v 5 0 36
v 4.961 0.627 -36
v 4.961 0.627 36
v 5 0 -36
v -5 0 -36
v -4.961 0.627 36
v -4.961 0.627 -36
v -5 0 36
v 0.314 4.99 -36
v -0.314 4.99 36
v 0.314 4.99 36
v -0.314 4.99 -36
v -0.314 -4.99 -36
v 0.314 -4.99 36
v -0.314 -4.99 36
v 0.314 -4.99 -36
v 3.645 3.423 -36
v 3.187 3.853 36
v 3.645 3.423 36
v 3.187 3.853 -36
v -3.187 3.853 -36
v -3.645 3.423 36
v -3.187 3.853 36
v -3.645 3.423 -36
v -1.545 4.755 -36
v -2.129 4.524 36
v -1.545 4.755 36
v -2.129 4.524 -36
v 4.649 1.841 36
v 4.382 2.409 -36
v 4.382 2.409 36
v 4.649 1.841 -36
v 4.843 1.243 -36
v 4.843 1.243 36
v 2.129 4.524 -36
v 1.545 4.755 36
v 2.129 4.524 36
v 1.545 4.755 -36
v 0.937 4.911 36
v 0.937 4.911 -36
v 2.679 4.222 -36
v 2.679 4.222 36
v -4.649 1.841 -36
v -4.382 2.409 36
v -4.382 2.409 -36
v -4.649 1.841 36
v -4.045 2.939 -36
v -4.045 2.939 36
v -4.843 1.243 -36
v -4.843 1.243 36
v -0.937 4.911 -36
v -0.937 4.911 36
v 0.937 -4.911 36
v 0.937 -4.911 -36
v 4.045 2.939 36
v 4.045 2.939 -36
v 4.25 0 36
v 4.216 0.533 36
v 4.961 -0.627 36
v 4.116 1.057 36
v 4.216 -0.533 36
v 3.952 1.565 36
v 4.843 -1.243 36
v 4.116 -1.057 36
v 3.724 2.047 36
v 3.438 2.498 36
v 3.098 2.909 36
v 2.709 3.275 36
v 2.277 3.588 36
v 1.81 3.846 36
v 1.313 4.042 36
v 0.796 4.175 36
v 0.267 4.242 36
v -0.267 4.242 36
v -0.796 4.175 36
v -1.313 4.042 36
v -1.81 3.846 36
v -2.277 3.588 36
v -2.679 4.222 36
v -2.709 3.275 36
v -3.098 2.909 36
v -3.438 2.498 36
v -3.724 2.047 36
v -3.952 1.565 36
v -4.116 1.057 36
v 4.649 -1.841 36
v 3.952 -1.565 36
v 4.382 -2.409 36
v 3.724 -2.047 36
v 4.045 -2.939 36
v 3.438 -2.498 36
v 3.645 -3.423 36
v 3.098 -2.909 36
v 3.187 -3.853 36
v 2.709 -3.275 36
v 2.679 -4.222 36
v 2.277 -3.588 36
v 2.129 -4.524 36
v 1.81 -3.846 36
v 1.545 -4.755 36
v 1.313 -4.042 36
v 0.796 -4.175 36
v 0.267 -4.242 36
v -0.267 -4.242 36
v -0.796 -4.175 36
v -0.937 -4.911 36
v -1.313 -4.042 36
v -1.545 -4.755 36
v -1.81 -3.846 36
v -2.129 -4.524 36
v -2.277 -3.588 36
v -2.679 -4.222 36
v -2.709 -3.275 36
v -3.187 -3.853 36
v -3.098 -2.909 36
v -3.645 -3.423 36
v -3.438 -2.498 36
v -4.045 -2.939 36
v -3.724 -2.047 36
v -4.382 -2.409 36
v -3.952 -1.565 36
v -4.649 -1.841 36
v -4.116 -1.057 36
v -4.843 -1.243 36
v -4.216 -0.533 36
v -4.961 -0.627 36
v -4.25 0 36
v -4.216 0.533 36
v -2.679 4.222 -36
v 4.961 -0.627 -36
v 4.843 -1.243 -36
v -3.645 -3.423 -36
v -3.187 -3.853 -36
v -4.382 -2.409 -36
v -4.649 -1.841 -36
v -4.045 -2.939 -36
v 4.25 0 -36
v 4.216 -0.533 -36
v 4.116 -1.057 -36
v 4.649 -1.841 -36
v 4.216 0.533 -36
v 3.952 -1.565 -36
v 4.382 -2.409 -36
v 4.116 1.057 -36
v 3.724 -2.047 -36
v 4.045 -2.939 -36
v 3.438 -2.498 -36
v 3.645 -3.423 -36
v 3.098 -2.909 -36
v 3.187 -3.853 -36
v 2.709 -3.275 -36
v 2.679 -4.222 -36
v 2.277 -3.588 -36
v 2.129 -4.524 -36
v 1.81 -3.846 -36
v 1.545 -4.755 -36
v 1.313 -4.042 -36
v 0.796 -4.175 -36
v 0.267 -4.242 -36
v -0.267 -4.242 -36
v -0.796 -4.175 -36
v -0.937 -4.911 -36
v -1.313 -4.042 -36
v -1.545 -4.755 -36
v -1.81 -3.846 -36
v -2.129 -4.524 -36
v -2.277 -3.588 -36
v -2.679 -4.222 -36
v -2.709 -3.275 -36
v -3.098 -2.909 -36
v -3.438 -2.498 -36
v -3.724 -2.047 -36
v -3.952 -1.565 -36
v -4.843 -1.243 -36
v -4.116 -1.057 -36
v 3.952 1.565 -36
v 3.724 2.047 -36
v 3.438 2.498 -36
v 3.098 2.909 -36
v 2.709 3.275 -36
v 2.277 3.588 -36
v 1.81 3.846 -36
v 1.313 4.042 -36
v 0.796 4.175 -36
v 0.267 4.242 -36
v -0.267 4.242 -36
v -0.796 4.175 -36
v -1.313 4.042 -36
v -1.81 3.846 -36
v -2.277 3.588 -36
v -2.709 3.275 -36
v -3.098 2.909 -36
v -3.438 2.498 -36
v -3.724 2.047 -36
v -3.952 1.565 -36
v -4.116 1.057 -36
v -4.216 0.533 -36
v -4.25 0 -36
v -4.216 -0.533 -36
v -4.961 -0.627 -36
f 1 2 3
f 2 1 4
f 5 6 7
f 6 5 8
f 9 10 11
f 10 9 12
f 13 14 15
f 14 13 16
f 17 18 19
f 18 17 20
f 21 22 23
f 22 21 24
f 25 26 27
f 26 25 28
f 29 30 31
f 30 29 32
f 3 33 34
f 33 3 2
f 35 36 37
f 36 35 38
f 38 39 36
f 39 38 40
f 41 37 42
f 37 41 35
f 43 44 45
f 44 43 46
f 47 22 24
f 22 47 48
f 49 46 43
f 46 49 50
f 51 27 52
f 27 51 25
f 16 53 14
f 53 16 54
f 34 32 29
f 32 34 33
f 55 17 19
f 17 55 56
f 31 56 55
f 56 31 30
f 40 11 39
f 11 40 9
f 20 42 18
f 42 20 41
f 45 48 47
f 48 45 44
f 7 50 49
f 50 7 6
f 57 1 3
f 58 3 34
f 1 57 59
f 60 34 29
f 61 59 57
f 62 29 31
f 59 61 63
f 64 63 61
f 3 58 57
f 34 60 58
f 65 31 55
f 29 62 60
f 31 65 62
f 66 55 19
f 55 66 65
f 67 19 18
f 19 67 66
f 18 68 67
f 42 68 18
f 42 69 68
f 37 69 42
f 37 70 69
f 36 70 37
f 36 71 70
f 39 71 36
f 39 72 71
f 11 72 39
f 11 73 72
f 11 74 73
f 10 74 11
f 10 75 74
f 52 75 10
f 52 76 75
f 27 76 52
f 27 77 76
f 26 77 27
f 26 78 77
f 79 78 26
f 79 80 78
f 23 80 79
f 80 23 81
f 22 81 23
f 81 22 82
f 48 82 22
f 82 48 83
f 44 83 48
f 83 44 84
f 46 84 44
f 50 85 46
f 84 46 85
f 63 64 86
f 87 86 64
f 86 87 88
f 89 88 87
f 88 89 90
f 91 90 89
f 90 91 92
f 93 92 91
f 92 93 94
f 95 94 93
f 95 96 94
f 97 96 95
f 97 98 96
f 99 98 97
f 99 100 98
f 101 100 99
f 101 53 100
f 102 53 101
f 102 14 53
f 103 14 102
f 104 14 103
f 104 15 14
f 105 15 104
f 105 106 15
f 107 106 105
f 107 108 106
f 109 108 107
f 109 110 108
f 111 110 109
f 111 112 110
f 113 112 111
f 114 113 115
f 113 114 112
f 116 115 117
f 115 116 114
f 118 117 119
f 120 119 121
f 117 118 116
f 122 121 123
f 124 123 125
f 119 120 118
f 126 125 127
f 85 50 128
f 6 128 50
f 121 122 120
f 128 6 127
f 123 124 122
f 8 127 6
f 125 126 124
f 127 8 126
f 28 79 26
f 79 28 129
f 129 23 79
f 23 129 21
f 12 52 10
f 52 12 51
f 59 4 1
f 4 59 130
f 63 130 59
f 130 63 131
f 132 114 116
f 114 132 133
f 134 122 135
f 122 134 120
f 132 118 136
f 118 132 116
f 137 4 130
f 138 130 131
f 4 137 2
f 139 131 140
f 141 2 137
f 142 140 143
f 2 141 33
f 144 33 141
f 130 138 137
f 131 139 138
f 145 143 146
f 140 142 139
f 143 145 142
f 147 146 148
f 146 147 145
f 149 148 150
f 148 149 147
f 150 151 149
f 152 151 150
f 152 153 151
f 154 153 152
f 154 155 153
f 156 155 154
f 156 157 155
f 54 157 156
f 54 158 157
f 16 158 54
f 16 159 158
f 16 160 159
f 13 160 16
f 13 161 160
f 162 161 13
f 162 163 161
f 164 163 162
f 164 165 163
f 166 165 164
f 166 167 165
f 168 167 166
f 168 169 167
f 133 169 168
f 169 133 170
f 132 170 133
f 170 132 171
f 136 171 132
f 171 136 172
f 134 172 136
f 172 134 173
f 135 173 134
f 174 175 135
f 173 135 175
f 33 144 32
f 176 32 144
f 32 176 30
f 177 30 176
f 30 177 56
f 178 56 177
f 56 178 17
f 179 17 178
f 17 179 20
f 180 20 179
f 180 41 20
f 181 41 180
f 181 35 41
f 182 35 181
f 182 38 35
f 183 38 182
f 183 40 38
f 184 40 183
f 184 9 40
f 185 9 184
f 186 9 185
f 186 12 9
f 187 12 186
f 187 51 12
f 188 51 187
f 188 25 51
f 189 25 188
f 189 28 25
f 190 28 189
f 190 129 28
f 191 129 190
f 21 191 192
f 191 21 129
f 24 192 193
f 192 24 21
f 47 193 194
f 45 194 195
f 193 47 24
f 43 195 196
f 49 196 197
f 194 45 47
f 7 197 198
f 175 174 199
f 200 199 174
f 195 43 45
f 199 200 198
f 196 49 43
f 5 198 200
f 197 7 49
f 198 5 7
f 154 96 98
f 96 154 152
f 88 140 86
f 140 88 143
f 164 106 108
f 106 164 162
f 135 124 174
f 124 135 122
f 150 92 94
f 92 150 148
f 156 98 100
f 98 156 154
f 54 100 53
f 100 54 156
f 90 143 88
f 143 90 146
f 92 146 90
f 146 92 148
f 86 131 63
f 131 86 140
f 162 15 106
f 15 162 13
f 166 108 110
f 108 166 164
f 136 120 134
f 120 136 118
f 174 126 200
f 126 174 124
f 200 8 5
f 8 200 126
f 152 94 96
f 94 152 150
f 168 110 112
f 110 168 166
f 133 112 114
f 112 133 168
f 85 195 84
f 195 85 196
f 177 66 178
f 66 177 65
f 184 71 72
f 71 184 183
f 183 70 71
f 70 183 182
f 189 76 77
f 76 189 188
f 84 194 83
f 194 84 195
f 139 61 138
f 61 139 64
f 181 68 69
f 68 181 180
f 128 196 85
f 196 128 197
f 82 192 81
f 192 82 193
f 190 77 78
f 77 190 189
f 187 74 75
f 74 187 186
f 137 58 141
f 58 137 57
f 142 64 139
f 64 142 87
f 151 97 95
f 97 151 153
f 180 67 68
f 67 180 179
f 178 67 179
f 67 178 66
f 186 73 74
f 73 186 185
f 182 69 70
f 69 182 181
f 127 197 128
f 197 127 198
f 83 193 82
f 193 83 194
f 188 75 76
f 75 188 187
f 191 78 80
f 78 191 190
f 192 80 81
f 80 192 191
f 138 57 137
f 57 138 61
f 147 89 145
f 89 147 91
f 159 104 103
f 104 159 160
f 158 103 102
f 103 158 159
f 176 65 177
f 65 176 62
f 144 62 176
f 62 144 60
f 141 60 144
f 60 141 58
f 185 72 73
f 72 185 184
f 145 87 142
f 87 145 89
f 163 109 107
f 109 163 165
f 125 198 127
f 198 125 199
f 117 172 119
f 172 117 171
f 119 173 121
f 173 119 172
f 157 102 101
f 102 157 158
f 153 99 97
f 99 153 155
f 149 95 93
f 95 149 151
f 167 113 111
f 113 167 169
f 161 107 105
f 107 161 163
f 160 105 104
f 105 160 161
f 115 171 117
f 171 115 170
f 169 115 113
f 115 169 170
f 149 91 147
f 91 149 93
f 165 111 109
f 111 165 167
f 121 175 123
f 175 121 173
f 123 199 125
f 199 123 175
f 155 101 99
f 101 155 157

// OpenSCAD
$fn = 50;


difference() {
	union() {
		translate(v = [0, 0, -36.0000000000]) {
			cylinder(h = 72, r = 5.0000000000);
		}
	}
	union() {
		translate(v = [0, 0, -100.0000000000]) {
			cylinder(h = 200, r = 4.2500000000);
		}
	}
}
